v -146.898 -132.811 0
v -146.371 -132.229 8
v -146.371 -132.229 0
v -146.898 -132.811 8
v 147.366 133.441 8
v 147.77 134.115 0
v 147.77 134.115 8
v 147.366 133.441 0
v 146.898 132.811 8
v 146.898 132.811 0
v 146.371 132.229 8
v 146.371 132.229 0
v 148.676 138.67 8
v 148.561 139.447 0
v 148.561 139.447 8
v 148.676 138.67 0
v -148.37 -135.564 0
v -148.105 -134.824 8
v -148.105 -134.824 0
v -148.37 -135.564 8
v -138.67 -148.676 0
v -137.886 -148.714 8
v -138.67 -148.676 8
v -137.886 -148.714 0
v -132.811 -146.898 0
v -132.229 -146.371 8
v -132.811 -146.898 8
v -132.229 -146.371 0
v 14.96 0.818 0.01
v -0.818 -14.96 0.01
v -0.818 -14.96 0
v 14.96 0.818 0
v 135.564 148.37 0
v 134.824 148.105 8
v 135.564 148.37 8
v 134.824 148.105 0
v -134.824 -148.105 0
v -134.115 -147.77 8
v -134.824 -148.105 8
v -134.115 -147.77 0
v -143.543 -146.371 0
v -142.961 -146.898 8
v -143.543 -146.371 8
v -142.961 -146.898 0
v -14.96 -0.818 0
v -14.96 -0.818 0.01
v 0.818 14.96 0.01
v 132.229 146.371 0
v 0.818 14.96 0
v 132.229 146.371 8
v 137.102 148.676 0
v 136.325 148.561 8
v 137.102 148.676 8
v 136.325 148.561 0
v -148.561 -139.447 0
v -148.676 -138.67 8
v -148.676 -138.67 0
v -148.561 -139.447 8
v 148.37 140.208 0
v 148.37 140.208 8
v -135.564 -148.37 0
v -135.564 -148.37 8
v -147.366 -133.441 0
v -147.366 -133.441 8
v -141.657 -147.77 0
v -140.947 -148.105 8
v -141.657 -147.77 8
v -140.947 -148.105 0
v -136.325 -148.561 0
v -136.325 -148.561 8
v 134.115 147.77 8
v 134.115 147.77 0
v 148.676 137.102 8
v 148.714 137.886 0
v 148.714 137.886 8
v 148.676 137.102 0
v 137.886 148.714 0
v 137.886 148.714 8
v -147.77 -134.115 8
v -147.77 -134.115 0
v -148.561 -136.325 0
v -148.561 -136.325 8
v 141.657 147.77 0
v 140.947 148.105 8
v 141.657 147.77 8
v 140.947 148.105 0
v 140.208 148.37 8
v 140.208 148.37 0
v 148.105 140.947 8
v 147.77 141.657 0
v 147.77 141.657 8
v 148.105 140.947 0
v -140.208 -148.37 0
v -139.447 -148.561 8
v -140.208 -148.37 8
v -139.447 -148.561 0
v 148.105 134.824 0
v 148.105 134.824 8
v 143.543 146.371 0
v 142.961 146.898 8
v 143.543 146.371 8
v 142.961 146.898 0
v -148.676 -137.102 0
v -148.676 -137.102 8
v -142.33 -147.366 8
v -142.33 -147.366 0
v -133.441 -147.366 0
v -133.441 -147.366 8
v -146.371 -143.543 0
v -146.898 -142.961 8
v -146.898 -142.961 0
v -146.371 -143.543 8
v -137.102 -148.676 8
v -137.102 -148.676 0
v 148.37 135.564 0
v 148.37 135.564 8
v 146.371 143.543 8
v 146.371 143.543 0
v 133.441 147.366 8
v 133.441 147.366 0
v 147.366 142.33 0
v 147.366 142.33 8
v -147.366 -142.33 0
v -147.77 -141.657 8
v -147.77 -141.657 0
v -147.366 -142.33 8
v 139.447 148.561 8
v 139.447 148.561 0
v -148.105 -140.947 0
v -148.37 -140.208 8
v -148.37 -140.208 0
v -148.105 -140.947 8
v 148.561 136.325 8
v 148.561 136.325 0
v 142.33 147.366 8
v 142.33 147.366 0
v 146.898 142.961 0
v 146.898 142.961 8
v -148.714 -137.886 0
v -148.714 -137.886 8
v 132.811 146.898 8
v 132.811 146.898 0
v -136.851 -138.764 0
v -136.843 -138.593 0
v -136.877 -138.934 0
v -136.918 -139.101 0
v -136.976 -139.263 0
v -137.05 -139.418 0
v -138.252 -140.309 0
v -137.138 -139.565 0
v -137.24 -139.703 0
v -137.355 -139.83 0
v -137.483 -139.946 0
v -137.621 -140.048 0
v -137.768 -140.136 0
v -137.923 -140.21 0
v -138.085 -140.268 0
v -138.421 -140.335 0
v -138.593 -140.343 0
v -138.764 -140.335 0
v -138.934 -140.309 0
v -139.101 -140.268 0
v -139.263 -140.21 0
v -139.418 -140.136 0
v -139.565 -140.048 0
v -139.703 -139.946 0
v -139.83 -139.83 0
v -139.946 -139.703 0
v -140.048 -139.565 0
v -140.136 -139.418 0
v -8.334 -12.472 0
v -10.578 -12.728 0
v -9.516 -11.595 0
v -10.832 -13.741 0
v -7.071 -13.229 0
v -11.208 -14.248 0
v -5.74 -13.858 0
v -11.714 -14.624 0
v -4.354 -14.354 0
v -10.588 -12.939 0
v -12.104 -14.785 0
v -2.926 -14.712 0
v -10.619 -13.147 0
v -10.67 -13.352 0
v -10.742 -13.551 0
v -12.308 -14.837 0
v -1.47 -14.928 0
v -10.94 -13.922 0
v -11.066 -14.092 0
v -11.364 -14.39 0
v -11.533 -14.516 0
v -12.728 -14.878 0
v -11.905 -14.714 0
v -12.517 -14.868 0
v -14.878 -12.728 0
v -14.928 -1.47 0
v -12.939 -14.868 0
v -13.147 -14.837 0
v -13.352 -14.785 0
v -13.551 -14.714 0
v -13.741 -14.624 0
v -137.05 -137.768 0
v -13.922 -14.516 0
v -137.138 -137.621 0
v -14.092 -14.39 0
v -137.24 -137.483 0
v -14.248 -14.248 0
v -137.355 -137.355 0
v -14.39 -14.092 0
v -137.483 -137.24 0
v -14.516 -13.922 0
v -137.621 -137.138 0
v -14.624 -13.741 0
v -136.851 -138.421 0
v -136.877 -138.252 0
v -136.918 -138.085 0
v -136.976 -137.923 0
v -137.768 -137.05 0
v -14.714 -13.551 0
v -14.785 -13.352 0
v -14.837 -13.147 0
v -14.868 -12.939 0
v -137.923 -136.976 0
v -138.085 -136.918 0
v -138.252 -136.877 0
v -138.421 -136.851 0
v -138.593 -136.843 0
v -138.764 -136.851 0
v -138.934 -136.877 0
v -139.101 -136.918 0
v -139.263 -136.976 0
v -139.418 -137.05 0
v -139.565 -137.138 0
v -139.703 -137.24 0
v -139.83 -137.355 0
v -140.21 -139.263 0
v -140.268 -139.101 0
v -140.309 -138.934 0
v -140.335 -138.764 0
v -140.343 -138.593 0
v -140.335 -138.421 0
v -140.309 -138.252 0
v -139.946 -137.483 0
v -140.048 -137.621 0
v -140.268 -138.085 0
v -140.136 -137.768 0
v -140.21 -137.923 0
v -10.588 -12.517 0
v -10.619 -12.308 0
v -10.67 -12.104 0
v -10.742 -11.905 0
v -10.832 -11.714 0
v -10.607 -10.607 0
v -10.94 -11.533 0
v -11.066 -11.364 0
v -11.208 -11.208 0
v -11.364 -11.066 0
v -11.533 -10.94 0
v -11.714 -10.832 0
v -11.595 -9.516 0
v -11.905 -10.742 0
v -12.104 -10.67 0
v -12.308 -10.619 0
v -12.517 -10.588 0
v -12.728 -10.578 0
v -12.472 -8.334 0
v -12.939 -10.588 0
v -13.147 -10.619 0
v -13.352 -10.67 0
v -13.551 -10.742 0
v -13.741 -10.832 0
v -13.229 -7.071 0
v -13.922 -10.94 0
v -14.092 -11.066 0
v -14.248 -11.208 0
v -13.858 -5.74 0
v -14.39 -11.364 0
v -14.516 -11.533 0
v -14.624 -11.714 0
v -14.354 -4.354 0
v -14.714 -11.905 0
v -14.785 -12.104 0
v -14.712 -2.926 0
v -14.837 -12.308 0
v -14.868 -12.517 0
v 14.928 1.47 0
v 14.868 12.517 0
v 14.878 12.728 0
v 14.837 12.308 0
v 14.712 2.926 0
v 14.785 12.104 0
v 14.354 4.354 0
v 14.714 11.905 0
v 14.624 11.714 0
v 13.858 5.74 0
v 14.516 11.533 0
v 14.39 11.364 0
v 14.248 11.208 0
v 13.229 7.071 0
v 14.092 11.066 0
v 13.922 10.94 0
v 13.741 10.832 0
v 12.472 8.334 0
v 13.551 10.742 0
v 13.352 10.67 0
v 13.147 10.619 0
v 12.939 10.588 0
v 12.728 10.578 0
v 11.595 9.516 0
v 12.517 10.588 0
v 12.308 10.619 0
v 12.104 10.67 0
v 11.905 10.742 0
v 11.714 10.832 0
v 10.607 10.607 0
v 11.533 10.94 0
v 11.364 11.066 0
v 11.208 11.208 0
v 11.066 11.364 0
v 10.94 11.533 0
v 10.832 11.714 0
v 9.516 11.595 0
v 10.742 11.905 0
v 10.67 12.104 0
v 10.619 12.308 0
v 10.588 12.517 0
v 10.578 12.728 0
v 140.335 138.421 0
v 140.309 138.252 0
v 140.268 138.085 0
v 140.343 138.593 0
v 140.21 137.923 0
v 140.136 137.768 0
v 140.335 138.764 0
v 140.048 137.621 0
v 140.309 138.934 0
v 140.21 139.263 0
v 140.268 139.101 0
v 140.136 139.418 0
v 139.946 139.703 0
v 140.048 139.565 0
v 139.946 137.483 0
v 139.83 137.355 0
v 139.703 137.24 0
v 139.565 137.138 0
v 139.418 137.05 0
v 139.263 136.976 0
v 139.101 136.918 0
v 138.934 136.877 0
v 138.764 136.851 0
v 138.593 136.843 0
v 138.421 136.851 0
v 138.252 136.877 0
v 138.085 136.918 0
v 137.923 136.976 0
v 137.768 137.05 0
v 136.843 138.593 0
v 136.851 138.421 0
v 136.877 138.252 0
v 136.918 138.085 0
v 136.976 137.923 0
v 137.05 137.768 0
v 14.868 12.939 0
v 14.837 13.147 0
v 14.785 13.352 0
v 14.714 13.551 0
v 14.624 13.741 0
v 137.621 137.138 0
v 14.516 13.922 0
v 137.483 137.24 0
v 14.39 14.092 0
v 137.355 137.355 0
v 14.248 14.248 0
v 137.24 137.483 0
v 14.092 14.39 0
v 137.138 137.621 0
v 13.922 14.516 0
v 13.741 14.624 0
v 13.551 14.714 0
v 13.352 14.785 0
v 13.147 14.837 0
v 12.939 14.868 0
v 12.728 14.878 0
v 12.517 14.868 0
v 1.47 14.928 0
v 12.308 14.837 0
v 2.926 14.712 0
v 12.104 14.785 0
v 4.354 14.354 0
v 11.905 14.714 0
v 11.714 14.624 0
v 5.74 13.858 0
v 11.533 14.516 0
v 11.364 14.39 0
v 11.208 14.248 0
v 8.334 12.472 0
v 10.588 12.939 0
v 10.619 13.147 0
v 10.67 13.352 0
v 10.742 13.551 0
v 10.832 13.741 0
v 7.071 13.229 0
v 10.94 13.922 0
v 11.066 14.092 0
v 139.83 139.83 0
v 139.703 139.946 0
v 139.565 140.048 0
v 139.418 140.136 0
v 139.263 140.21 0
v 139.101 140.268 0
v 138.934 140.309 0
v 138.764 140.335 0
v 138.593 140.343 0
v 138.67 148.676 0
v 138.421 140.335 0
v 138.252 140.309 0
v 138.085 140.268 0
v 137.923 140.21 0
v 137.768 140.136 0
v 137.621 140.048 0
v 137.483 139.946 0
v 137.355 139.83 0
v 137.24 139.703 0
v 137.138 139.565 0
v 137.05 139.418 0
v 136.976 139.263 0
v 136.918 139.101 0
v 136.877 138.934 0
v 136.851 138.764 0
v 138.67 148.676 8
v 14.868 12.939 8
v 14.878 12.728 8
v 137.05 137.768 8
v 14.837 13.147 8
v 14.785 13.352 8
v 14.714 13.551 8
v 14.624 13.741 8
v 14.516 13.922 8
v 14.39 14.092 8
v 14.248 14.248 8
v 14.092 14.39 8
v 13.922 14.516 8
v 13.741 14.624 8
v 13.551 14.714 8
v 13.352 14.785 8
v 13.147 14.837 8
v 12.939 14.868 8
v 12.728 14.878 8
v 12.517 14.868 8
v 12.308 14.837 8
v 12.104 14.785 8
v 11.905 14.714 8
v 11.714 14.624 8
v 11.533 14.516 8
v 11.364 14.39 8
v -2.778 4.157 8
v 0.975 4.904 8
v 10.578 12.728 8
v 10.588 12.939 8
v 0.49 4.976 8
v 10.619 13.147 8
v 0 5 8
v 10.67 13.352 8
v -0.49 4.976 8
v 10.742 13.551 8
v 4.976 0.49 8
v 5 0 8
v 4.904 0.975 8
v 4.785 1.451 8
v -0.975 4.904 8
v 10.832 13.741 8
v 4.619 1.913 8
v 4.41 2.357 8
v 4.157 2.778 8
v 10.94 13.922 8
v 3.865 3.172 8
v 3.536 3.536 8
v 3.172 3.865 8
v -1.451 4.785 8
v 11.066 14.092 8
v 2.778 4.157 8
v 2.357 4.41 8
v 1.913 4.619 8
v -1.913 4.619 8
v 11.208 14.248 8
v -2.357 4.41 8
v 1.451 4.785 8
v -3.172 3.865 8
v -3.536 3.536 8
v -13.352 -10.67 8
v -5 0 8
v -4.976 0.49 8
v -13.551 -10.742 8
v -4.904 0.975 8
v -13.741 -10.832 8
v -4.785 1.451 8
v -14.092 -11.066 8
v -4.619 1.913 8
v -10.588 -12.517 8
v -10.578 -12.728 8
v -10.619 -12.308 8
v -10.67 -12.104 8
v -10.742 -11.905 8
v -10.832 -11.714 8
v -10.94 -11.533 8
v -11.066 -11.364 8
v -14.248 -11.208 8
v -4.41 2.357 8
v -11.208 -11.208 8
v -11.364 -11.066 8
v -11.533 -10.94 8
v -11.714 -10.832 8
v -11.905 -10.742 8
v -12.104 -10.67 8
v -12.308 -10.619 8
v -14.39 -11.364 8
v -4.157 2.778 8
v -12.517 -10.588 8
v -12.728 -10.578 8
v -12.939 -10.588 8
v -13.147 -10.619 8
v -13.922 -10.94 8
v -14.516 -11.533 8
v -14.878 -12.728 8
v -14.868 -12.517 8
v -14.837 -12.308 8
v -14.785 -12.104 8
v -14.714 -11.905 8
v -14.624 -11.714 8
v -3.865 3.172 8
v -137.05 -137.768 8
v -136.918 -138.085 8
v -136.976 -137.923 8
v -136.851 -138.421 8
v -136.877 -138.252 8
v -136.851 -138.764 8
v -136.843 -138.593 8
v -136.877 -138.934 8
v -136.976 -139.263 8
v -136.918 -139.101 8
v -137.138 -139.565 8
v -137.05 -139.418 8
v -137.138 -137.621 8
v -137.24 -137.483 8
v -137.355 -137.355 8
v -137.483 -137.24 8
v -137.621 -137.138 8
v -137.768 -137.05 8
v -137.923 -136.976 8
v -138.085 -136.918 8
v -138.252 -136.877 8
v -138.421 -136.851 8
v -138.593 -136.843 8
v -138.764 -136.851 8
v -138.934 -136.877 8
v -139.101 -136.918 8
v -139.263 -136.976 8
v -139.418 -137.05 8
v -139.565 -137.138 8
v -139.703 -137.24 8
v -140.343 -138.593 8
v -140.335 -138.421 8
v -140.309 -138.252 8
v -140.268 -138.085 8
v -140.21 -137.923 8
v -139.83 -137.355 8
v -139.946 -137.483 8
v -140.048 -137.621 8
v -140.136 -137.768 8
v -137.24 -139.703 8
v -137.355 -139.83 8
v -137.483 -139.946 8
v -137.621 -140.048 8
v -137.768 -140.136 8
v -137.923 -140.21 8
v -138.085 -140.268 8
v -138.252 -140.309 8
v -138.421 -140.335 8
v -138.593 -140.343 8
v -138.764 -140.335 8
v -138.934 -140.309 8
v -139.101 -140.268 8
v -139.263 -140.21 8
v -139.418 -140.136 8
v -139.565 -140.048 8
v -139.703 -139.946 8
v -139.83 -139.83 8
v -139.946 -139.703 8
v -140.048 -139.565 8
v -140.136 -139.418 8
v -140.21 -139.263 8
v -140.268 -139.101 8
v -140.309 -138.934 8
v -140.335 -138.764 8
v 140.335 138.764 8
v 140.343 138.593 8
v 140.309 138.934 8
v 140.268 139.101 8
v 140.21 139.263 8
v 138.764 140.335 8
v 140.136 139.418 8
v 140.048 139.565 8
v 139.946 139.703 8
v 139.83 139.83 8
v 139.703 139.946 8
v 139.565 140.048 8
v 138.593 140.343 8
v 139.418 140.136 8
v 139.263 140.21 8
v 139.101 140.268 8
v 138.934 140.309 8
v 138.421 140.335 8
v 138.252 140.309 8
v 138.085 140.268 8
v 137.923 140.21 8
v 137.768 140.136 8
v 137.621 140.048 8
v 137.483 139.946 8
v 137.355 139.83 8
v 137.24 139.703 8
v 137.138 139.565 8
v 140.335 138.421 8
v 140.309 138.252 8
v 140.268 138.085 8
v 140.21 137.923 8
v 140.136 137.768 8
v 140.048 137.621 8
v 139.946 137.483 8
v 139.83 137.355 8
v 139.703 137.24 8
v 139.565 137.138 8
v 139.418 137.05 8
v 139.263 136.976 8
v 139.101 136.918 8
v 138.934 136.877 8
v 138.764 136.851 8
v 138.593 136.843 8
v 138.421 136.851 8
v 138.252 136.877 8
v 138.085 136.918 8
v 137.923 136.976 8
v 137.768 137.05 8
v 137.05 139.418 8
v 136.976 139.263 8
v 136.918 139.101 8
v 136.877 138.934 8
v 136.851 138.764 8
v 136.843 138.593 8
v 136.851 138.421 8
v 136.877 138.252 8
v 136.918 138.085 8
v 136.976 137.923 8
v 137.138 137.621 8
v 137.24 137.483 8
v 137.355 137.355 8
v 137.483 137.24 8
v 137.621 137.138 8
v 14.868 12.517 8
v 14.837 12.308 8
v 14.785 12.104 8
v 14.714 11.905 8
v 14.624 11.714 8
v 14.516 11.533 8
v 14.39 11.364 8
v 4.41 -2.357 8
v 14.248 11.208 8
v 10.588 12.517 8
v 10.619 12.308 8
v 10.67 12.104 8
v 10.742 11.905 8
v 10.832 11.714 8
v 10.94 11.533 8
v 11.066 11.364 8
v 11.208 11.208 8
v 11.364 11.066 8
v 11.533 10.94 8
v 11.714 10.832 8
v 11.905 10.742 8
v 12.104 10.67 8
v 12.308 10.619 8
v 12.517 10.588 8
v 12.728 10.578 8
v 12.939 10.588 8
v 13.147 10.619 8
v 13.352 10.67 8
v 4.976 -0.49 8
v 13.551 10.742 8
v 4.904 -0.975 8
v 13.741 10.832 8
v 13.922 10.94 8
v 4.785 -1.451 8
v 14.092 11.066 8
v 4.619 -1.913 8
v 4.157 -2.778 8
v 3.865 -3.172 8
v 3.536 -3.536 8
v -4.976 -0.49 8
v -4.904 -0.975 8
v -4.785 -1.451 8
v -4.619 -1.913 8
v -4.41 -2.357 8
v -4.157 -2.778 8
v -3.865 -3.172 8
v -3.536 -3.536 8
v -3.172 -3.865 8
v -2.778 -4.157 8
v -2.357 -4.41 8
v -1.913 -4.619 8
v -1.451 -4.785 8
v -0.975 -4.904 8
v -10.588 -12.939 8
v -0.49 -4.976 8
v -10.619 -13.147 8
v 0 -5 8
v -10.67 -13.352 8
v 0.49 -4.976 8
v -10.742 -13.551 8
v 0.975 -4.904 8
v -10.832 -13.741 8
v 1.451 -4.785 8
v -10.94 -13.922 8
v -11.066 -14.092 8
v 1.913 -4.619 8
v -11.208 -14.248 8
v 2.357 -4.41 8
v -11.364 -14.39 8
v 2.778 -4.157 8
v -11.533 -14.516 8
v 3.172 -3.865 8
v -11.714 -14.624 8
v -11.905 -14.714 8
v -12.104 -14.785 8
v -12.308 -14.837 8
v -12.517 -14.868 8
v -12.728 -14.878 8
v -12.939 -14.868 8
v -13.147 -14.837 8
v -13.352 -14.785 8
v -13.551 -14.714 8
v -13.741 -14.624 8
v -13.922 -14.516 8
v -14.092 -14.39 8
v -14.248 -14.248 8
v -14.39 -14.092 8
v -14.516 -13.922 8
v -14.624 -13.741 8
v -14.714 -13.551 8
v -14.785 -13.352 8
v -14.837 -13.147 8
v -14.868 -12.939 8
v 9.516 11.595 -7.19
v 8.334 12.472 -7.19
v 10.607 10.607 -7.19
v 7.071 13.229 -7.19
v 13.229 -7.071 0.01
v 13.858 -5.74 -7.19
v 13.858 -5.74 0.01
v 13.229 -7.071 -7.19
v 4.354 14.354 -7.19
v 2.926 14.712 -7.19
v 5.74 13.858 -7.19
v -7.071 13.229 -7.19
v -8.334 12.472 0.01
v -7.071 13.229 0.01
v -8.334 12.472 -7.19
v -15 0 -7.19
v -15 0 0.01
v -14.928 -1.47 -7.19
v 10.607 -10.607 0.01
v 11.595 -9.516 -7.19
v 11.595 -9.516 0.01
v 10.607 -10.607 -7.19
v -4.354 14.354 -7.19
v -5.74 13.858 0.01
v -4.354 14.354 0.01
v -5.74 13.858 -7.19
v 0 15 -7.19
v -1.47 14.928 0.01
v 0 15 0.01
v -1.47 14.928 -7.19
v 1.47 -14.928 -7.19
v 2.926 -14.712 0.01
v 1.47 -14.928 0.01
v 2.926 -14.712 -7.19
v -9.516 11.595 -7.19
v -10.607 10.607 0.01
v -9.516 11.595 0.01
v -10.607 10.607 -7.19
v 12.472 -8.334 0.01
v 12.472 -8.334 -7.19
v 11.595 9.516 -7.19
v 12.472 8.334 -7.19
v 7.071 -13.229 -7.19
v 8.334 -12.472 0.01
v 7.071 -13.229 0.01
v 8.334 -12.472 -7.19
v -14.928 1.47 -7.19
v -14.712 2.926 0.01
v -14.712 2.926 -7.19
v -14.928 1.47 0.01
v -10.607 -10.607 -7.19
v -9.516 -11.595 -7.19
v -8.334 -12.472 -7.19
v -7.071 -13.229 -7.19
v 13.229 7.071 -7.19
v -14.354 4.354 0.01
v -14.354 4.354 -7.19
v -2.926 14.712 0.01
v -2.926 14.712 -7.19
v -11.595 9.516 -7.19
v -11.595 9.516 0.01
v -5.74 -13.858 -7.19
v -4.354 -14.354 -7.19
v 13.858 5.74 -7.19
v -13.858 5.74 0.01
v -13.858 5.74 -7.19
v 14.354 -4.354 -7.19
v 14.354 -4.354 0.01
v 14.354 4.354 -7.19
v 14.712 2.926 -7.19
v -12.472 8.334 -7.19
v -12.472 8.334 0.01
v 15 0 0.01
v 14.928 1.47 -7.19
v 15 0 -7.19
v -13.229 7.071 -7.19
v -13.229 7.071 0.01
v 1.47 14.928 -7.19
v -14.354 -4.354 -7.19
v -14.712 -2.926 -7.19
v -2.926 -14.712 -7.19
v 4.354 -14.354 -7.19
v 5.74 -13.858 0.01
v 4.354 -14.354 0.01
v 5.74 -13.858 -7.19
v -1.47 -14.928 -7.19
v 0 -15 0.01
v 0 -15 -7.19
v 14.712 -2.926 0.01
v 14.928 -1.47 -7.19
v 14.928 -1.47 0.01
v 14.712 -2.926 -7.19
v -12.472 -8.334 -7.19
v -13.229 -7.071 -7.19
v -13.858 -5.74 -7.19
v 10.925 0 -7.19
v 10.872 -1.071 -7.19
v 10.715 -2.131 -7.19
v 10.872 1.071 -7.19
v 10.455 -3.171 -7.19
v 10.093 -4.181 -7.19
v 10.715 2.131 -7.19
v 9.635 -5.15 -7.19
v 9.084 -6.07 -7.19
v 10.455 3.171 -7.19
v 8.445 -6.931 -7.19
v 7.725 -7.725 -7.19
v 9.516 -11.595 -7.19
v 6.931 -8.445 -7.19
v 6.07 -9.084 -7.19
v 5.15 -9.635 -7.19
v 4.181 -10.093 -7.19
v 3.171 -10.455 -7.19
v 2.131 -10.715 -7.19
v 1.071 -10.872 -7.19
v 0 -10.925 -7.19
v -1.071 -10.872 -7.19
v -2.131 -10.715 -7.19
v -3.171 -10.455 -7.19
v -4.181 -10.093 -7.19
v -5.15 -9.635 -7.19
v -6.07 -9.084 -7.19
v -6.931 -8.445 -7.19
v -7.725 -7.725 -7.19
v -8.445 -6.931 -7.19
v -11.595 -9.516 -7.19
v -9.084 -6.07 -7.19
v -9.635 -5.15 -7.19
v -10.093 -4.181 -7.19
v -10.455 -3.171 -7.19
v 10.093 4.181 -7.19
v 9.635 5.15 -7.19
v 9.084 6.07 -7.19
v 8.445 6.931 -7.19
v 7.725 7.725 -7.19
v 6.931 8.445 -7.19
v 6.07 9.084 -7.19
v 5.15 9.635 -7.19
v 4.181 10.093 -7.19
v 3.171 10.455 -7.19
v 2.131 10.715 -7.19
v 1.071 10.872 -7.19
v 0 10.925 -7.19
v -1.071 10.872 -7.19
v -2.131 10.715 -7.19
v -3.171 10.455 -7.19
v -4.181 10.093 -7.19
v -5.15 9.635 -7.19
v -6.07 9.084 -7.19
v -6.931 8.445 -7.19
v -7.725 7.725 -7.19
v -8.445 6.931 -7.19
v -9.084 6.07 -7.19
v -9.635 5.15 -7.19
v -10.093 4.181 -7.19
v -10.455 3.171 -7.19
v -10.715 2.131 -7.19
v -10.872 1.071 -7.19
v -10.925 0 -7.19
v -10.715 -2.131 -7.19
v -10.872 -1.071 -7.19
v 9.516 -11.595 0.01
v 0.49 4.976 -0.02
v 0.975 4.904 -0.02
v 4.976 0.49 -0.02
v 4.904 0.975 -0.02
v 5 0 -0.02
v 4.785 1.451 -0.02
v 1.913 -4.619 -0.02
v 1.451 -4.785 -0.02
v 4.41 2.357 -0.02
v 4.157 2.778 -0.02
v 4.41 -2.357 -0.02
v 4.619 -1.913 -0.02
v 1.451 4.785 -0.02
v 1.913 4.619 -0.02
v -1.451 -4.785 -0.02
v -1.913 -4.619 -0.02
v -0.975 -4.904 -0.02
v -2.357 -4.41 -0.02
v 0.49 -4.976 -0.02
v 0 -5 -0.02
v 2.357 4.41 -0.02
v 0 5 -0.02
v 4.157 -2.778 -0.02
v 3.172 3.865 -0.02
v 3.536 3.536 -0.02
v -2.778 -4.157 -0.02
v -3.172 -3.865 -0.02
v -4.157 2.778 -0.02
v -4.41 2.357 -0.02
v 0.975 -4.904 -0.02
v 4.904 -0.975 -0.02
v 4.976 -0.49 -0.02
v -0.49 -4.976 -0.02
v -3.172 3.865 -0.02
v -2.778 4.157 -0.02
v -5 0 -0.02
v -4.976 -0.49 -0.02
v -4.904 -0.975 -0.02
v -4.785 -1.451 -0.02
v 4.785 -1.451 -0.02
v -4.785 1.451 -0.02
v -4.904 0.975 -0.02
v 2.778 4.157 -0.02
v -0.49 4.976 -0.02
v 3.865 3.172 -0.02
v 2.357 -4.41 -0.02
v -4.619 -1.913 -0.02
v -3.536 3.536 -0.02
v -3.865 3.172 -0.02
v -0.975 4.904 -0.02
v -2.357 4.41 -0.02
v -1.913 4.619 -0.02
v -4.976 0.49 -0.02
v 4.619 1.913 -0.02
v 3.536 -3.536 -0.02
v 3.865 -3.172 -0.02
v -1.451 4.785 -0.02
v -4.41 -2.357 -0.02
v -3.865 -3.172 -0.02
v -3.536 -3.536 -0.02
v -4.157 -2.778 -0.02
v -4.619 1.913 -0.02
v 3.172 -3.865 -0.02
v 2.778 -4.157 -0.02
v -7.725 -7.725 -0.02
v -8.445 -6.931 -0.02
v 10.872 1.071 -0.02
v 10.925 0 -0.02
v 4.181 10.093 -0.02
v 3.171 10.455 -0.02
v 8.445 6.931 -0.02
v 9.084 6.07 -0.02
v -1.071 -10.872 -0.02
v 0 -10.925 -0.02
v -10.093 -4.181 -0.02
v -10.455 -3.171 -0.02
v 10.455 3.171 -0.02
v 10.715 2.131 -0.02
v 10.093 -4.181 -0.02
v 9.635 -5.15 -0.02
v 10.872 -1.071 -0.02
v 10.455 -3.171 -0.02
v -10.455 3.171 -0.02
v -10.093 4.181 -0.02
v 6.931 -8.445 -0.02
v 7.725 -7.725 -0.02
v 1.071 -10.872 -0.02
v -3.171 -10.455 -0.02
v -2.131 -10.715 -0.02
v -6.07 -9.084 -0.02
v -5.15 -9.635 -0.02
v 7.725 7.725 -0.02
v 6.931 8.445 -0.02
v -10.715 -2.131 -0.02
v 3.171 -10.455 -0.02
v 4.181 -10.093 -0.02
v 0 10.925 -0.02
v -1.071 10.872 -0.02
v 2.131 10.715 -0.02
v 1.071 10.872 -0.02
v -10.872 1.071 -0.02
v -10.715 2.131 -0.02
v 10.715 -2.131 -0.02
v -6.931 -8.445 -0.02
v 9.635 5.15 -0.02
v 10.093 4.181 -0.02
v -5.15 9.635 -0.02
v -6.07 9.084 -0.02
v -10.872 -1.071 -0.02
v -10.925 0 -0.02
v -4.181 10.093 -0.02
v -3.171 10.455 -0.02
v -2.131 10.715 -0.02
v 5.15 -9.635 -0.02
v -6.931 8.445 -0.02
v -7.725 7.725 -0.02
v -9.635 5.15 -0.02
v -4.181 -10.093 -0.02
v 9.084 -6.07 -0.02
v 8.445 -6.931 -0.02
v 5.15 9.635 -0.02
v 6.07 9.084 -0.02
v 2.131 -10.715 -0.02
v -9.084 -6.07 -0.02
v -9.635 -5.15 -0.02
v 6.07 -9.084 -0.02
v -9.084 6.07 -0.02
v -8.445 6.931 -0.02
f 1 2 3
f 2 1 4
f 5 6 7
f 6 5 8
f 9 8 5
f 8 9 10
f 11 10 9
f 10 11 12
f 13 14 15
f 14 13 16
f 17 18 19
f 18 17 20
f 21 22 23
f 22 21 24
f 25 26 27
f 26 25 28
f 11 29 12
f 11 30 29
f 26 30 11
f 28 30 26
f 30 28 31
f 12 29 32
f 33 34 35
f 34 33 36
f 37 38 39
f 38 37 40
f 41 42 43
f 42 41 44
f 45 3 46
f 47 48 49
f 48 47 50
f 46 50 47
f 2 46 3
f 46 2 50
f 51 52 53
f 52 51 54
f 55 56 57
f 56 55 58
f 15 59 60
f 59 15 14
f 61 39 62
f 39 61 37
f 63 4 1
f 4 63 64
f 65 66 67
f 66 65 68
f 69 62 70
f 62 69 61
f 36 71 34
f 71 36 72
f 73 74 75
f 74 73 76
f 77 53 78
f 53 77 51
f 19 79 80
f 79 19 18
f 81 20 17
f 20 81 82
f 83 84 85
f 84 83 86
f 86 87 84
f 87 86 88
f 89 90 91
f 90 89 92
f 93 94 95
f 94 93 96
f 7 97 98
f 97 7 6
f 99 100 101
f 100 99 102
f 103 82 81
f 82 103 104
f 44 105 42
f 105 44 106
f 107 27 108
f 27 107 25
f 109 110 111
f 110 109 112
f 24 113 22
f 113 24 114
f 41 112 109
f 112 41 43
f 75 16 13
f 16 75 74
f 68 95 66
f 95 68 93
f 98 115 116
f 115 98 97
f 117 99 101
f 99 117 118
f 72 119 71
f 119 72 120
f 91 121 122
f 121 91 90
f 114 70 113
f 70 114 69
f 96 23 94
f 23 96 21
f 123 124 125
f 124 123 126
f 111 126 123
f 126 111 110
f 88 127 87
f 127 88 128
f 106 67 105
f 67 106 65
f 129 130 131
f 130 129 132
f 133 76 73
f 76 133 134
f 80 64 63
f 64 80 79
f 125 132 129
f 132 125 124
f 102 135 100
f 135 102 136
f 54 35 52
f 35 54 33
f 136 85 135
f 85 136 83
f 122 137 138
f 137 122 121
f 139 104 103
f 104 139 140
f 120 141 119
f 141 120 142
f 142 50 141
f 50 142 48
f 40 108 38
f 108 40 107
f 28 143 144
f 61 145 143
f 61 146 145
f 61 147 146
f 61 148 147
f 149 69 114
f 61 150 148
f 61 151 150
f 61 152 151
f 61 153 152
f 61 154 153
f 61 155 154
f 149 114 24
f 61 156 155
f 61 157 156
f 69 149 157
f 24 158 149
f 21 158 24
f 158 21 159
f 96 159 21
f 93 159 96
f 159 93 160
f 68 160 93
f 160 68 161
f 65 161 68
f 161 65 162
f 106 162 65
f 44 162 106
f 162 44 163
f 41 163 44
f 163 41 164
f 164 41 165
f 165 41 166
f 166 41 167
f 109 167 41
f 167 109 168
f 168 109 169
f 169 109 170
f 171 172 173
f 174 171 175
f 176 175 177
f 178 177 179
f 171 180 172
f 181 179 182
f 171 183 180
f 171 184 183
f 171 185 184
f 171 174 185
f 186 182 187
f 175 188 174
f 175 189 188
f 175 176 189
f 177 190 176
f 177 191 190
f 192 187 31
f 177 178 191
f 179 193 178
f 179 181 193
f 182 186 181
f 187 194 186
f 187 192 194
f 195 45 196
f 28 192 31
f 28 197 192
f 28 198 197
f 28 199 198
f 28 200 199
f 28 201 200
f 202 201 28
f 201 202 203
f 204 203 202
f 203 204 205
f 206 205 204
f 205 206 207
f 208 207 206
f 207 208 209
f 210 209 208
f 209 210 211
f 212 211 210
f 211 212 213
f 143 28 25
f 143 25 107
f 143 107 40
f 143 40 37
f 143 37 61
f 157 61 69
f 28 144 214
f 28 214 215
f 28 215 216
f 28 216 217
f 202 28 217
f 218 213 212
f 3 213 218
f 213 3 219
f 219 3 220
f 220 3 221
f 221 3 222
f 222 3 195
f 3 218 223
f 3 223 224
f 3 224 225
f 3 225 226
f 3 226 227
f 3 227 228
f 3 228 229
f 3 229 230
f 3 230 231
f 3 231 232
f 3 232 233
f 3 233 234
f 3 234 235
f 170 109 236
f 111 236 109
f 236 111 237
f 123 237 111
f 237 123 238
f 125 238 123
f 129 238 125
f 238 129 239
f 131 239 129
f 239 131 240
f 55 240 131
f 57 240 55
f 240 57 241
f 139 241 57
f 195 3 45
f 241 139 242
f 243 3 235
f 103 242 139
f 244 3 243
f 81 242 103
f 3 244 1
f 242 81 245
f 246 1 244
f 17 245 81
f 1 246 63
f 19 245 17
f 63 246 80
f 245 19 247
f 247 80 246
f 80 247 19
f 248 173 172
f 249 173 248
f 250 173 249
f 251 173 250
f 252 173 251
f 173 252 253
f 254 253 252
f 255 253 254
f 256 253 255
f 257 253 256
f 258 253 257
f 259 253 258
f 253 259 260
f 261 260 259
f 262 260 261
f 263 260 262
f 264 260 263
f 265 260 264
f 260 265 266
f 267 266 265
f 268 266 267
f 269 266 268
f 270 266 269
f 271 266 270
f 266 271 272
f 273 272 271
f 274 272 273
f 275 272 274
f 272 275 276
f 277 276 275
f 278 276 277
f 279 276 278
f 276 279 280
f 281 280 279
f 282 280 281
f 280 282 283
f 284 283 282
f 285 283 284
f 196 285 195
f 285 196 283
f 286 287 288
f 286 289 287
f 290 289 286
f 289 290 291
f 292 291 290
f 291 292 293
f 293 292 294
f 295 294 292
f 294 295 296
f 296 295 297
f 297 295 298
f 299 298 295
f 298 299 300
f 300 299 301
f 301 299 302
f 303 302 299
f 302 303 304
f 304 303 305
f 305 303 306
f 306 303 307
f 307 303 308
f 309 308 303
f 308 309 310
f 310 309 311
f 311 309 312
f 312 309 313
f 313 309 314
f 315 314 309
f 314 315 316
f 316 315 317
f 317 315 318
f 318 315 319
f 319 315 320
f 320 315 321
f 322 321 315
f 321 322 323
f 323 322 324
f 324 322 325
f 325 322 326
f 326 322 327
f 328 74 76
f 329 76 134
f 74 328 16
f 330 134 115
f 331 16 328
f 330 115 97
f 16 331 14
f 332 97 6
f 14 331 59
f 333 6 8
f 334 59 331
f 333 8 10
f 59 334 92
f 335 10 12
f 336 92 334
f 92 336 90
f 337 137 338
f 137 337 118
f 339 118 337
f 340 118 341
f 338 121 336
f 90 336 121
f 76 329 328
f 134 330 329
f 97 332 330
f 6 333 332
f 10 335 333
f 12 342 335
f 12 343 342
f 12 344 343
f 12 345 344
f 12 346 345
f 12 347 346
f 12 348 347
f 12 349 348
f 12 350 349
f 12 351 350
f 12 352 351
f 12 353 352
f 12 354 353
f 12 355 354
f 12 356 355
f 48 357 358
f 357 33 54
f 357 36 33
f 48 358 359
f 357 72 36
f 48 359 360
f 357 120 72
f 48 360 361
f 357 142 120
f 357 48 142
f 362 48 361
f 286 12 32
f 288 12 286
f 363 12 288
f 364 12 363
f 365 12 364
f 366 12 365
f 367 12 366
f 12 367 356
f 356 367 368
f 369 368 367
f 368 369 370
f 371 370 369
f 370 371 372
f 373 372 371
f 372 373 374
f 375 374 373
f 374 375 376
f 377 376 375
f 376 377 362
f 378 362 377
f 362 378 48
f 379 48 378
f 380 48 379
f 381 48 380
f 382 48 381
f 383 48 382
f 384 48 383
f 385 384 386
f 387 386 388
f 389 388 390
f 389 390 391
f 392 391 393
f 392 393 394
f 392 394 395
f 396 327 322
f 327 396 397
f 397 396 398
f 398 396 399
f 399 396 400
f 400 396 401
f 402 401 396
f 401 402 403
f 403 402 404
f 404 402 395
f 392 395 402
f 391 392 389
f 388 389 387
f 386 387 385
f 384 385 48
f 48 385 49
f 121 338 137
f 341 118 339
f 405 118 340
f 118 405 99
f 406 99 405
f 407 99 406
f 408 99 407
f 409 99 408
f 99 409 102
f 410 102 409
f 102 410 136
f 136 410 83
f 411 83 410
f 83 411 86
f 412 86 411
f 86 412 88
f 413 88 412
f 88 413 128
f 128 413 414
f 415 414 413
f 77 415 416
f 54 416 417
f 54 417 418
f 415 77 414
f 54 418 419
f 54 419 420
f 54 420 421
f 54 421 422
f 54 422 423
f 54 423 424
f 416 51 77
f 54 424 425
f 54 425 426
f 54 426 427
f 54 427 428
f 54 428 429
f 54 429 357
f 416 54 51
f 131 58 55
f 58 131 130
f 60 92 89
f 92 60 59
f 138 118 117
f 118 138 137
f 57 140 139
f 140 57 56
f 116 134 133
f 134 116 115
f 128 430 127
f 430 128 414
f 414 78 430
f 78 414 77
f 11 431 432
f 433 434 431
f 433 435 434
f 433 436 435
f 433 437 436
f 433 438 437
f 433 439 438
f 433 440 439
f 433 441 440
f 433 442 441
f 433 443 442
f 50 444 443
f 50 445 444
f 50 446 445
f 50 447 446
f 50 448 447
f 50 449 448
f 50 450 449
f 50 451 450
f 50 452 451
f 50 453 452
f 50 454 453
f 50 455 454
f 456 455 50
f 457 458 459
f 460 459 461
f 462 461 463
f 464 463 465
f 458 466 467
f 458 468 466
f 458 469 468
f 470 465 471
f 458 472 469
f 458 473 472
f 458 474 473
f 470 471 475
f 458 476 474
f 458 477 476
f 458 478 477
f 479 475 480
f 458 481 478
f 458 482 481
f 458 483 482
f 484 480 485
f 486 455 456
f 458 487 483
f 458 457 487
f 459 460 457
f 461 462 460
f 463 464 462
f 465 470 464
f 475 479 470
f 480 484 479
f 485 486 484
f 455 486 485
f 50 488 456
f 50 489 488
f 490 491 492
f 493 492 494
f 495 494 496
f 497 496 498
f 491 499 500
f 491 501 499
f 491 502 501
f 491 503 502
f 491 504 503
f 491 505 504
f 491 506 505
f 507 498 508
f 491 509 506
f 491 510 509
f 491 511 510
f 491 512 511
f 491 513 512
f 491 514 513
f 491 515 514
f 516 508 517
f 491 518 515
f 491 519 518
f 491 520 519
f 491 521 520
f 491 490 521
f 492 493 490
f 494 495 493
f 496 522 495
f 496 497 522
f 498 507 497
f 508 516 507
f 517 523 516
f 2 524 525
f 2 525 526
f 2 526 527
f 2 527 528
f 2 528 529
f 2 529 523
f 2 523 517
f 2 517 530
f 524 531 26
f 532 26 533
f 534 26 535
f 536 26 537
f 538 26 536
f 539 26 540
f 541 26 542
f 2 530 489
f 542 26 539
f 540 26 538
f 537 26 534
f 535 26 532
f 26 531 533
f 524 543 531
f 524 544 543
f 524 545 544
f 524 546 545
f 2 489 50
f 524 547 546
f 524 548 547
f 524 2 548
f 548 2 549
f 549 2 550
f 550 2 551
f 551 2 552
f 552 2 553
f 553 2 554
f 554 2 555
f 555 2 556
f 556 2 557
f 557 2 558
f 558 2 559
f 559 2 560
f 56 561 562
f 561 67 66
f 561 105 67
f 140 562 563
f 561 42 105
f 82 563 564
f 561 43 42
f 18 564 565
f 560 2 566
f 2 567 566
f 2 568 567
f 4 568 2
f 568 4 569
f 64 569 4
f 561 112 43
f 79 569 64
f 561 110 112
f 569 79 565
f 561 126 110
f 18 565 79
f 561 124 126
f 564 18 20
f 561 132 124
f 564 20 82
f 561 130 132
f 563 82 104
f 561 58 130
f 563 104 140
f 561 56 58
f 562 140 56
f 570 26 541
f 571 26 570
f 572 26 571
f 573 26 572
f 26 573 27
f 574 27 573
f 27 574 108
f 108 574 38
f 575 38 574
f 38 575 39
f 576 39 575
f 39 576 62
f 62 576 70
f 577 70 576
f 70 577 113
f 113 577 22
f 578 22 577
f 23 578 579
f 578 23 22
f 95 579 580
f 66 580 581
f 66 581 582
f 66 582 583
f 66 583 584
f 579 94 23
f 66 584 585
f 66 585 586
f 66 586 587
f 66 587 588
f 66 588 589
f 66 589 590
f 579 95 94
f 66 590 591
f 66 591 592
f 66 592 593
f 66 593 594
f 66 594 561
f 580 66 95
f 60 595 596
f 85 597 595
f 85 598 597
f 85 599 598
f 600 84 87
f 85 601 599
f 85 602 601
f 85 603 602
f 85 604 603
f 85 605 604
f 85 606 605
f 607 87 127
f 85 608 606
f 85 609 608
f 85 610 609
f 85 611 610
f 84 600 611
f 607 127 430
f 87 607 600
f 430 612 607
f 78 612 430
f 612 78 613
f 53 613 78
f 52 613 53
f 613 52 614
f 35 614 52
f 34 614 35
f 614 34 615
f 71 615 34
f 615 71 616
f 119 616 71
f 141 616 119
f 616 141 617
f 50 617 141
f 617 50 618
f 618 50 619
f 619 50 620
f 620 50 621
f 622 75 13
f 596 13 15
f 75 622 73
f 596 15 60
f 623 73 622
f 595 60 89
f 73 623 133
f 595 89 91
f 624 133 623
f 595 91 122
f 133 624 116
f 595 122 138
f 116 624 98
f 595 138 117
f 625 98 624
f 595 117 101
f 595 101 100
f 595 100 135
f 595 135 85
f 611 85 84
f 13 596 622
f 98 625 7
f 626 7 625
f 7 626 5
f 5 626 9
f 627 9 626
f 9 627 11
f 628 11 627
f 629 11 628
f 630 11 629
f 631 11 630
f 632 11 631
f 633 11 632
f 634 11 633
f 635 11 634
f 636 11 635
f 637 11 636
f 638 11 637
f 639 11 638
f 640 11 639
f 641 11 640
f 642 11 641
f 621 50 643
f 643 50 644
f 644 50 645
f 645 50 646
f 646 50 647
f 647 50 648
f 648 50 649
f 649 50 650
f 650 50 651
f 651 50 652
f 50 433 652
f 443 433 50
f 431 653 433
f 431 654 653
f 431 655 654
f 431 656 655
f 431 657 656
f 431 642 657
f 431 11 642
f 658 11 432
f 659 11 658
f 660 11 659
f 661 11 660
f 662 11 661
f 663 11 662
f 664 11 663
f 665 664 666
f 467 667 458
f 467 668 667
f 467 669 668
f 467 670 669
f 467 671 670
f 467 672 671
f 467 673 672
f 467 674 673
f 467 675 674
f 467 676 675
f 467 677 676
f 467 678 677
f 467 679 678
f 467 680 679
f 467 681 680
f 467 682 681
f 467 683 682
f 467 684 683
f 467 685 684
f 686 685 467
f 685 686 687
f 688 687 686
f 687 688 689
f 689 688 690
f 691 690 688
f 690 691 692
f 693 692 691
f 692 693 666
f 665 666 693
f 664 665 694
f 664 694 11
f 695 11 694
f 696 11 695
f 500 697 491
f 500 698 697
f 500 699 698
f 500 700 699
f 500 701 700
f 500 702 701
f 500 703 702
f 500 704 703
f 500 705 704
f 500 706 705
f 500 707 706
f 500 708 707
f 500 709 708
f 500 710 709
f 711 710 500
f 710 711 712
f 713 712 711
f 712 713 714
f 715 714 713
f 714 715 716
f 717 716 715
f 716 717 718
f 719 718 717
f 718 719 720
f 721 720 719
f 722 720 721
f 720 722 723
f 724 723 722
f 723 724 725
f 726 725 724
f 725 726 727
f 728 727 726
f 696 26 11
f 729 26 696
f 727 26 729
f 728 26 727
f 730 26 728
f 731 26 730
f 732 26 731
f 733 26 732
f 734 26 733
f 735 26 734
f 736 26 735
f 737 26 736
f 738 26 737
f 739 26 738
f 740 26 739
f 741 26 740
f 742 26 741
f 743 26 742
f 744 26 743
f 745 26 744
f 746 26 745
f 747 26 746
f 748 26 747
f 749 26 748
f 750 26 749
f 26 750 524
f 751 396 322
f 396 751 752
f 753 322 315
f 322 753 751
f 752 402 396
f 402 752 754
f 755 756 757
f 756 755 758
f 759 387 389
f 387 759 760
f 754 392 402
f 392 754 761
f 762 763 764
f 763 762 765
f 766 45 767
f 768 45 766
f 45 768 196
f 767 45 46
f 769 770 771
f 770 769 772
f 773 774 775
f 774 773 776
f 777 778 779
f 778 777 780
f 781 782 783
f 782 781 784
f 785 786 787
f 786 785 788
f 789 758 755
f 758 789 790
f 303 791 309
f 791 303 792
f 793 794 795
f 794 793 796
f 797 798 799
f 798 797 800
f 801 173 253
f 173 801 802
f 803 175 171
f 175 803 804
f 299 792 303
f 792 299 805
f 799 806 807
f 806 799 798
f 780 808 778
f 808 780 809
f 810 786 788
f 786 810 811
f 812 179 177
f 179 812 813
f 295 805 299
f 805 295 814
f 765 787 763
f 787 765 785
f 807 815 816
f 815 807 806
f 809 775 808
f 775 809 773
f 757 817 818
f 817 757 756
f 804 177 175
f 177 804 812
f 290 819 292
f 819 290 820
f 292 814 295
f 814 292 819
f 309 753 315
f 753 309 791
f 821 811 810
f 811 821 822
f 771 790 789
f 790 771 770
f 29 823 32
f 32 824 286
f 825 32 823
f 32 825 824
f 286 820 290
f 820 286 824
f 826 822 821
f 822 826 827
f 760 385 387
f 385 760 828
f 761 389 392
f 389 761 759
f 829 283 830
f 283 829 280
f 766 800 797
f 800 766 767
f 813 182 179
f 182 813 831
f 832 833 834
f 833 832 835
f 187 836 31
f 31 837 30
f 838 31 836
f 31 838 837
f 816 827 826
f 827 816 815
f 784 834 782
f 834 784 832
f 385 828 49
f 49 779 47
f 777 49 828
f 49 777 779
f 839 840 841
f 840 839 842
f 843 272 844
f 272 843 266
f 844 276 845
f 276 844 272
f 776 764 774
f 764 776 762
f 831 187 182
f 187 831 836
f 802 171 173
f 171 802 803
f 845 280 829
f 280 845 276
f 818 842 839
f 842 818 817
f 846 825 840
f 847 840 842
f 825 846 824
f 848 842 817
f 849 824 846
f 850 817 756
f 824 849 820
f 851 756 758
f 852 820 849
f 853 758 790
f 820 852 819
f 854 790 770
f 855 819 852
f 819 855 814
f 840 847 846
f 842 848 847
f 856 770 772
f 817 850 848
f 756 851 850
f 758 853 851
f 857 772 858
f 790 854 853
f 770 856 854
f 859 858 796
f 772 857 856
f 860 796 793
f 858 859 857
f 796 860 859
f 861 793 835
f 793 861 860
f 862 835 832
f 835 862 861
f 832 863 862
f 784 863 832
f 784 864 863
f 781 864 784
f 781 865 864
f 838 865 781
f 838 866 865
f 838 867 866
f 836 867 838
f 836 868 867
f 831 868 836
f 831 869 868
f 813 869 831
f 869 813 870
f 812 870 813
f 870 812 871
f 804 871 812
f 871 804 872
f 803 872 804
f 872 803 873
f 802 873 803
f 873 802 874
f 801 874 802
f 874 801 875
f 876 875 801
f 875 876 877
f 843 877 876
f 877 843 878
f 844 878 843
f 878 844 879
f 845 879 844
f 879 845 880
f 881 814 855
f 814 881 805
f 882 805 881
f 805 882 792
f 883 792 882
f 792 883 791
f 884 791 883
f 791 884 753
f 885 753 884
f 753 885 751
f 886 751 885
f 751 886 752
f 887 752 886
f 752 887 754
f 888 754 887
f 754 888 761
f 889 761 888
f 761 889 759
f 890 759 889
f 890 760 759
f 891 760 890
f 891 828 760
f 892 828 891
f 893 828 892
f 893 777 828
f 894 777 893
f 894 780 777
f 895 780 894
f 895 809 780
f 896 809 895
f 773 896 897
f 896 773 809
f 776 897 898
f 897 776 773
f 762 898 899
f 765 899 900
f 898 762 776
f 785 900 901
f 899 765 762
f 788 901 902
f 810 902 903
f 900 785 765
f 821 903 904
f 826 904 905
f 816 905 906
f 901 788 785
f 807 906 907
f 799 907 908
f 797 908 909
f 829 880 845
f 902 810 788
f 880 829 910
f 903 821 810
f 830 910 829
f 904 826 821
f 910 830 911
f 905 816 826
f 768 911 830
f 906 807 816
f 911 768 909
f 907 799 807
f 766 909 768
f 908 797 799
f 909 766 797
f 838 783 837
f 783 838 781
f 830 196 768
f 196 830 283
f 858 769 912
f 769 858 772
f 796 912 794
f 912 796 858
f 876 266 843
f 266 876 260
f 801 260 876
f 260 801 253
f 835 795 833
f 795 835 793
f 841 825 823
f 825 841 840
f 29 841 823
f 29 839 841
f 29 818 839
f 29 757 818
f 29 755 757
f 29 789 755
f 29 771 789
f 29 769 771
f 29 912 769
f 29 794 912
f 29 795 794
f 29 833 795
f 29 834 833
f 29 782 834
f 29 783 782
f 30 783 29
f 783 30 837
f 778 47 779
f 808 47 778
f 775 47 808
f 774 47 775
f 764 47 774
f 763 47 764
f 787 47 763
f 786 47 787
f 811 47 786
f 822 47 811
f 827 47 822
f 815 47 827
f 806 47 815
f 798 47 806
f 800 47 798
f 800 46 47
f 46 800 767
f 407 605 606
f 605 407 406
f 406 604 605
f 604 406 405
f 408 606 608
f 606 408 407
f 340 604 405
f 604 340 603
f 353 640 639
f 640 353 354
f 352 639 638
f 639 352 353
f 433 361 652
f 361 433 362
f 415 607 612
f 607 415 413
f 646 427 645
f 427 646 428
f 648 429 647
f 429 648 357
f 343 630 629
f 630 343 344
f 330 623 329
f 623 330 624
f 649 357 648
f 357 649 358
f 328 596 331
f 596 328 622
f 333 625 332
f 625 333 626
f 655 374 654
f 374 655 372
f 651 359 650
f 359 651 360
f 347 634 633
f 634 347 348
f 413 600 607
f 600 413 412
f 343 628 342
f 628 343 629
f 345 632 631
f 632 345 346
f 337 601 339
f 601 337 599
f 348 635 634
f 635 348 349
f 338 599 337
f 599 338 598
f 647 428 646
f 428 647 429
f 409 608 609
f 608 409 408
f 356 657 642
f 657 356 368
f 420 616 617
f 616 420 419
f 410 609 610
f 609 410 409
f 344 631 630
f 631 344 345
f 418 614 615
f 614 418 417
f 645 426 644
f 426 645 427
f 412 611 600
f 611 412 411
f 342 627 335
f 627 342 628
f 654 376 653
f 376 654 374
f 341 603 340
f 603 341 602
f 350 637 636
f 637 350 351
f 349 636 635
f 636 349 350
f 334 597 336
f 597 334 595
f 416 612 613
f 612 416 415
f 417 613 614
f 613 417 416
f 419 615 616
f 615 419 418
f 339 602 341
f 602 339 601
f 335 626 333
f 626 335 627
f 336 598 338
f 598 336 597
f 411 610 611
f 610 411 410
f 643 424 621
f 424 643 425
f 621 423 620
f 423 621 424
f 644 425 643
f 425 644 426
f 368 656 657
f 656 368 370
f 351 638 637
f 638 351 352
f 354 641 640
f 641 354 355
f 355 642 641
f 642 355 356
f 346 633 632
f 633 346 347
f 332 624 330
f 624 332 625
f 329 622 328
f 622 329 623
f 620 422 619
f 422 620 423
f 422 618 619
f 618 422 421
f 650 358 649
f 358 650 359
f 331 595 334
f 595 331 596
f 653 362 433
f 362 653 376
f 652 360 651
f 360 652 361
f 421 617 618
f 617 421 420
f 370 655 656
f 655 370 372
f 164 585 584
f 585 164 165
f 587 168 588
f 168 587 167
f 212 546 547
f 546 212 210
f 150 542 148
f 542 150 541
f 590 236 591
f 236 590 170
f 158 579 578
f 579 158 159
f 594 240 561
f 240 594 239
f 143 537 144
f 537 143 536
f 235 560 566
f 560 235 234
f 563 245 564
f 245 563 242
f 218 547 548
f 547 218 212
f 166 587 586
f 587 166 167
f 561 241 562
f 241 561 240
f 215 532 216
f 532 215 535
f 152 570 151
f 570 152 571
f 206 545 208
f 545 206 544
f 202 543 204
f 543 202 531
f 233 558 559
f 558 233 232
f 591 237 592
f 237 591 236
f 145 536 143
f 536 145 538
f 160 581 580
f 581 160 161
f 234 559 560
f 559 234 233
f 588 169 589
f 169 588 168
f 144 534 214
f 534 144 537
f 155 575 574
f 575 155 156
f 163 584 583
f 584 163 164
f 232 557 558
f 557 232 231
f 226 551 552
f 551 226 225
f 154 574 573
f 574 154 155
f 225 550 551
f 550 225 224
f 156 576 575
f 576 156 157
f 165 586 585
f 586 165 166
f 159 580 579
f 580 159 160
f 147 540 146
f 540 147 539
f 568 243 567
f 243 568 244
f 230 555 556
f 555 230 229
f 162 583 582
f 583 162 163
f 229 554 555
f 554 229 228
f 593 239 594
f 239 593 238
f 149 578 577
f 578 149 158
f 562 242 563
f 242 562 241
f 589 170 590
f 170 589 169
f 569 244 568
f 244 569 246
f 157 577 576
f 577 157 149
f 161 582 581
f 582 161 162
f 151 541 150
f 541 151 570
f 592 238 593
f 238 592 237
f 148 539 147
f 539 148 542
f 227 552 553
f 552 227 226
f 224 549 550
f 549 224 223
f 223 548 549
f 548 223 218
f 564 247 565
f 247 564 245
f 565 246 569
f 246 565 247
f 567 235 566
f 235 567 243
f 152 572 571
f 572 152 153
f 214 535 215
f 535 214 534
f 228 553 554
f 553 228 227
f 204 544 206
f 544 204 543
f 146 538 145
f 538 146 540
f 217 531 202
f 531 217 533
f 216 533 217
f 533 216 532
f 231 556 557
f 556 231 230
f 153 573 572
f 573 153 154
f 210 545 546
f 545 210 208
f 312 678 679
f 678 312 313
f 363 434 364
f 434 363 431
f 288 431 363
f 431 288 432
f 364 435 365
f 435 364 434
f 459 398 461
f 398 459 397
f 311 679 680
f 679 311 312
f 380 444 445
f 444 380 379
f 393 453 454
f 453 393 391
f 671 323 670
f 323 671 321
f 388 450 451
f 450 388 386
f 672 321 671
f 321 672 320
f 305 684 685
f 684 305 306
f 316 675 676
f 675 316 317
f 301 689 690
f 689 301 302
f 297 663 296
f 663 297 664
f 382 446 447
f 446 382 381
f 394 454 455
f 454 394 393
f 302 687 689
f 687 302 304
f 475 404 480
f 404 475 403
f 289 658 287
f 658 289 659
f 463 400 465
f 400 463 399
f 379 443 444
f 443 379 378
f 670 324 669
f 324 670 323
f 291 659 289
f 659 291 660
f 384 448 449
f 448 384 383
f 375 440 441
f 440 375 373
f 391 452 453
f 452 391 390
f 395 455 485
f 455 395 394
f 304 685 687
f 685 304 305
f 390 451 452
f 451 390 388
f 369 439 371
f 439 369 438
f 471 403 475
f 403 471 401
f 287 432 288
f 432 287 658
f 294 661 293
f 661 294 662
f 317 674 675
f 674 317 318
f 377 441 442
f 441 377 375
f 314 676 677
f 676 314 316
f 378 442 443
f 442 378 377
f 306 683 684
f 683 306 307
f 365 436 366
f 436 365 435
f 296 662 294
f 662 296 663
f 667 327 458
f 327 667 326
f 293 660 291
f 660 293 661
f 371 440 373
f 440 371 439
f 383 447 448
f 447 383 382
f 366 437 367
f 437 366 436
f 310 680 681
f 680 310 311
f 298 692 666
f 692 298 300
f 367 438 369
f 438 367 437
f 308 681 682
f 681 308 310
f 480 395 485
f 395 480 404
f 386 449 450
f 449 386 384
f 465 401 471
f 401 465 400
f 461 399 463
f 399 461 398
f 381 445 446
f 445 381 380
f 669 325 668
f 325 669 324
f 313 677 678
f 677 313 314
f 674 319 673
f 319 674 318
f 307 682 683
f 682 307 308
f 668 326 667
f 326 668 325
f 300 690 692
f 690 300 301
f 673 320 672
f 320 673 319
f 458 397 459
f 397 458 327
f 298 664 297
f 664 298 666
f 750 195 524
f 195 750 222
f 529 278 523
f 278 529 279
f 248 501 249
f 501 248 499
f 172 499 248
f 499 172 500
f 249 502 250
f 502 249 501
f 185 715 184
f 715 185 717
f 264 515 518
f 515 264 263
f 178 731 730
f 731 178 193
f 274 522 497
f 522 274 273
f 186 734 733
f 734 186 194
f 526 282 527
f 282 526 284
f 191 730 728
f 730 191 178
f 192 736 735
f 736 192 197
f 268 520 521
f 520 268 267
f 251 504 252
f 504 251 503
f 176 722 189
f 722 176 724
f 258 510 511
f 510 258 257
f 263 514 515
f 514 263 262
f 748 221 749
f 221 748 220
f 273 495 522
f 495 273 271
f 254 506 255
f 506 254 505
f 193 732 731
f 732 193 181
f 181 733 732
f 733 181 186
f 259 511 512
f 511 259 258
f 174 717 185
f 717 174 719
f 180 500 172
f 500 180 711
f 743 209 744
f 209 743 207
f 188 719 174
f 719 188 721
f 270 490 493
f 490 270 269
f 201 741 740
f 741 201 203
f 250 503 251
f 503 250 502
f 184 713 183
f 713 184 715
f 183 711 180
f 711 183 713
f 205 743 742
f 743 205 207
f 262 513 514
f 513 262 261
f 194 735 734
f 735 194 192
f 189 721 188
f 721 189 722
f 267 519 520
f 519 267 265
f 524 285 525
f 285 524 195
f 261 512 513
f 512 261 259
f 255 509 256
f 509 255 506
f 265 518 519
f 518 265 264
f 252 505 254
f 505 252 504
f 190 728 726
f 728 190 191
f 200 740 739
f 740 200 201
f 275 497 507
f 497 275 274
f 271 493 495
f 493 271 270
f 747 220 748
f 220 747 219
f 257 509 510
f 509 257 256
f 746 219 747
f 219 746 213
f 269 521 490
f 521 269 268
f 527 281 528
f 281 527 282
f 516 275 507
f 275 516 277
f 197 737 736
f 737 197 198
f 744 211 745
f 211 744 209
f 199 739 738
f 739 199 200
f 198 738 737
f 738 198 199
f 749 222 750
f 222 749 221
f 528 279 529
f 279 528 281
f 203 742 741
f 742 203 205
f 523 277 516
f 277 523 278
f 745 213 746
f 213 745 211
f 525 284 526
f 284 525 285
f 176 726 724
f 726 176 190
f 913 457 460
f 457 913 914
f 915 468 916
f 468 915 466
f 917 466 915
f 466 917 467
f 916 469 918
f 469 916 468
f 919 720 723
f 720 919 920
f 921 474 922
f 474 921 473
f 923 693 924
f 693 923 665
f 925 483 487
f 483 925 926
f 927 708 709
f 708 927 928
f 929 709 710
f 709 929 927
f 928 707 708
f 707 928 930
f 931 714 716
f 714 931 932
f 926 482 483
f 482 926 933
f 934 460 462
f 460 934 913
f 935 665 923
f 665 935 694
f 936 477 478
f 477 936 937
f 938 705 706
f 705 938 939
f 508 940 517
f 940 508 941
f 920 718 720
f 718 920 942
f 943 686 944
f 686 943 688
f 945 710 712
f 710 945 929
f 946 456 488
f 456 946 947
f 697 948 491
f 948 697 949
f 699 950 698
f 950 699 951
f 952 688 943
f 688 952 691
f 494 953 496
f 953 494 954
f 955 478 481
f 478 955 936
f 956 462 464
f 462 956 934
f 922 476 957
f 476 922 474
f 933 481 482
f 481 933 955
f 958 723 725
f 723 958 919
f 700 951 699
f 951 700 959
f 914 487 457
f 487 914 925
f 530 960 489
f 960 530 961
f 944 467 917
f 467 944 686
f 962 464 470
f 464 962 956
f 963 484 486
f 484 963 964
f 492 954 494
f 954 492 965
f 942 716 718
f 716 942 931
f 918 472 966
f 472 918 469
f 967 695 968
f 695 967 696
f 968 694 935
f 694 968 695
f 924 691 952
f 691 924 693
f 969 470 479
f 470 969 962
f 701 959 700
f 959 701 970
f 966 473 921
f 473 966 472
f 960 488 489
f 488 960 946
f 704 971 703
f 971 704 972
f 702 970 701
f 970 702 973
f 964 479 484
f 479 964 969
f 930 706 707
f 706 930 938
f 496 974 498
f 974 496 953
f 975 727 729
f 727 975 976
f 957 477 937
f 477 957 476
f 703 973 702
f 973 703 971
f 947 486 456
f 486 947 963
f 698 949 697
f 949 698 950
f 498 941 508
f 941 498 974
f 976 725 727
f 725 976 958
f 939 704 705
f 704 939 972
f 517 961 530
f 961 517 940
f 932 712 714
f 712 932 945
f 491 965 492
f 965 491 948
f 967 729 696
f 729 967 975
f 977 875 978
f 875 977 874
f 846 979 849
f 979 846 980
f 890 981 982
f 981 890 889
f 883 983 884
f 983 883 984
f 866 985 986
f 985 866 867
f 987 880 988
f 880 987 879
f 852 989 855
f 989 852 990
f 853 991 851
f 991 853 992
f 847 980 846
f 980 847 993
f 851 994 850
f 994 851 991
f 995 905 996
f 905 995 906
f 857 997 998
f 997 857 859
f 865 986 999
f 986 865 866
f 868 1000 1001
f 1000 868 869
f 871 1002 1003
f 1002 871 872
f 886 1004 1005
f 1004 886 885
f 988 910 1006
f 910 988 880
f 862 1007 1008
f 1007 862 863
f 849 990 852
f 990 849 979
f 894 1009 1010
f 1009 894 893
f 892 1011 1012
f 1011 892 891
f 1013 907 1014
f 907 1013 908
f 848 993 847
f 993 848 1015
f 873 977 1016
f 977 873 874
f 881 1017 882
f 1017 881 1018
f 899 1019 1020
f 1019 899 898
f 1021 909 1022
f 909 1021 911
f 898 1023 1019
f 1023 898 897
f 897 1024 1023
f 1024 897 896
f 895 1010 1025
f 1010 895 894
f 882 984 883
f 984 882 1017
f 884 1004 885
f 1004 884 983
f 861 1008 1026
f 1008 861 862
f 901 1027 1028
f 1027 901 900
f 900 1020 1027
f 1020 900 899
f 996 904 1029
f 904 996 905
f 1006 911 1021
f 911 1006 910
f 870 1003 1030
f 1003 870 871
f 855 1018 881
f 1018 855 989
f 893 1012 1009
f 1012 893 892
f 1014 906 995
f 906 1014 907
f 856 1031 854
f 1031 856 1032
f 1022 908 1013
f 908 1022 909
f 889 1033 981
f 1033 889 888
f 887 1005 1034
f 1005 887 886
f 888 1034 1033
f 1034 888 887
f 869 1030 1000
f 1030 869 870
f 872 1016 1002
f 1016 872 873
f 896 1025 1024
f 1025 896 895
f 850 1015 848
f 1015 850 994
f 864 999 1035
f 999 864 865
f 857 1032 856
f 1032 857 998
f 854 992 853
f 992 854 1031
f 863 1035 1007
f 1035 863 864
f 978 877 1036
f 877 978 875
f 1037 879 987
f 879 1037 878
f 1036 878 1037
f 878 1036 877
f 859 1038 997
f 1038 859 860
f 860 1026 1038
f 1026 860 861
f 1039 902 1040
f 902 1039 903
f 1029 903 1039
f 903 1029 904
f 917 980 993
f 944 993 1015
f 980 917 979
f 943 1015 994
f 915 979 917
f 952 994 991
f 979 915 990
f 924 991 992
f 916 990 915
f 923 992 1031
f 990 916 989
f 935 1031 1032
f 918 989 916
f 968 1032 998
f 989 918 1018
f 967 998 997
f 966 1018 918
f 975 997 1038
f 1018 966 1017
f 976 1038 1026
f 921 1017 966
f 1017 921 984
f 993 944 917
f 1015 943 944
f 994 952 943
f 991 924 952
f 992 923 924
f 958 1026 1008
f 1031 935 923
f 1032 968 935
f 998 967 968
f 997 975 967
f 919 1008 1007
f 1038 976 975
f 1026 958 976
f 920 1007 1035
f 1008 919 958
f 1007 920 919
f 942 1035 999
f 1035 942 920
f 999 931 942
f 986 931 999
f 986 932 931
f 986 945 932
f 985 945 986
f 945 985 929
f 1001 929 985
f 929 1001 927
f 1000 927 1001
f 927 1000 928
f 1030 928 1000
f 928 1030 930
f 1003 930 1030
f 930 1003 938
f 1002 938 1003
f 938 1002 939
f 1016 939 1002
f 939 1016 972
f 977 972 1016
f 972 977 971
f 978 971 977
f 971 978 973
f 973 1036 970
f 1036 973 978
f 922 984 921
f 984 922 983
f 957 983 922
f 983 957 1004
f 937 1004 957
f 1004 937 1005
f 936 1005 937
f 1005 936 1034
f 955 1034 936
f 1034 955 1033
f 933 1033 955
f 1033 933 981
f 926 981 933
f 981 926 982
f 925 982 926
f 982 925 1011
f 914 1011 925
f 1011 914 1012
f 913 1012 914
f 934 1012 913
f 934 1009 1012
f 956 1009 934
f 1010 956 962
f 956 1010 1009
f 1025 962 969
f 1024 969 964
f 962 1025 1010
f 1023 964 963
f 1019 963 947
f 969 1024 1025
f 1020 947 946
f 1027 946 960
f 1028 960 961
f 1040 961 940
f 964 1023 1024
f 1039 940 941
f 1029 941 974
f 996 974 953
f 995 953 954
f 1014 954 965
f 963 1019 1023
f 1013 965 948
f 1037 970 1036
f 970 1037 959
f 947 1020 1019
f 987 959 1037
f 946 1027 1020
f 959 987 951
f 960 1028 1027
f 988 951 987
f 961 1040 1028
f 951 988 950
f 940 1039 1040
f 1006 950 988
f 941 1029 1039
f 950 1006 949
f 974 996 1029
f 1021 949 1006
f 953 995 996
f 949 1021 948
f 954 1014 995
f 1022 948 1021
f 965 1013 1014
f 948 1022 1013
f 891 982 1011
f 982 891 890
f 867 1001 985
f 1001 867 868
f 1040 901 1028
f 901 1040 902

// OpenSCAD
// Gen-DT — front BEARING BRIDGE (bar endbell, 2026-10-10): a 608 boss on a 20 mm wide bar that spans the
// two frame rods at 45 deg and 45+180 deg (R = flange_bolt_r). The front bridge uses the rods at 45/225 deg, the rear
// bridge the rods at 135/315 deg, so the two bridges cross at 90 deg and the stator is held at 4 points.
// A bar instead of a full disc is what lets this big-ring kit fit ONE 410 mm plate. Print flat face DOWN (boss up, no supports).
// Brace holes (temporary M4 jack rods, R = brace_r) sit on the bar axis.
include <parameters.scad>;
$fn = 64;
bar_w = 20;
bar_len = 2 * (flange_bolt_r + 9);
module bar_2d() { offset(r=8) offset(delta=-8) square([bar_len, bar_w], center=true); }
difference() {
    rotate([0, 0, 45]) union() {
        linear_extrude(endbell_thick) bar_2d();
        translate([0, 0, -bearing_h + 0.01]) cylinder(d=30, h=bearing_h);
    }
    translate([0, 0, -bearing_h - 0.1]) cylinder(d=endbell_shaft_clear, h=50);
    translate([0, 0, -bearing_h - 0.02]) cylinder(d=bearing_d, h=bearing_h);
    for (s = [0, 180]) rotate([0, 0, 45 + s]) translate([flange_bolt_r, 0, -20]) cylinder(d=m3_clear, h=60);
    for (a = brace_angles) translate([brace_r*cos(a), brace_r*sin(a), -20]) cylinder(d=brace_d, h=50);
}
